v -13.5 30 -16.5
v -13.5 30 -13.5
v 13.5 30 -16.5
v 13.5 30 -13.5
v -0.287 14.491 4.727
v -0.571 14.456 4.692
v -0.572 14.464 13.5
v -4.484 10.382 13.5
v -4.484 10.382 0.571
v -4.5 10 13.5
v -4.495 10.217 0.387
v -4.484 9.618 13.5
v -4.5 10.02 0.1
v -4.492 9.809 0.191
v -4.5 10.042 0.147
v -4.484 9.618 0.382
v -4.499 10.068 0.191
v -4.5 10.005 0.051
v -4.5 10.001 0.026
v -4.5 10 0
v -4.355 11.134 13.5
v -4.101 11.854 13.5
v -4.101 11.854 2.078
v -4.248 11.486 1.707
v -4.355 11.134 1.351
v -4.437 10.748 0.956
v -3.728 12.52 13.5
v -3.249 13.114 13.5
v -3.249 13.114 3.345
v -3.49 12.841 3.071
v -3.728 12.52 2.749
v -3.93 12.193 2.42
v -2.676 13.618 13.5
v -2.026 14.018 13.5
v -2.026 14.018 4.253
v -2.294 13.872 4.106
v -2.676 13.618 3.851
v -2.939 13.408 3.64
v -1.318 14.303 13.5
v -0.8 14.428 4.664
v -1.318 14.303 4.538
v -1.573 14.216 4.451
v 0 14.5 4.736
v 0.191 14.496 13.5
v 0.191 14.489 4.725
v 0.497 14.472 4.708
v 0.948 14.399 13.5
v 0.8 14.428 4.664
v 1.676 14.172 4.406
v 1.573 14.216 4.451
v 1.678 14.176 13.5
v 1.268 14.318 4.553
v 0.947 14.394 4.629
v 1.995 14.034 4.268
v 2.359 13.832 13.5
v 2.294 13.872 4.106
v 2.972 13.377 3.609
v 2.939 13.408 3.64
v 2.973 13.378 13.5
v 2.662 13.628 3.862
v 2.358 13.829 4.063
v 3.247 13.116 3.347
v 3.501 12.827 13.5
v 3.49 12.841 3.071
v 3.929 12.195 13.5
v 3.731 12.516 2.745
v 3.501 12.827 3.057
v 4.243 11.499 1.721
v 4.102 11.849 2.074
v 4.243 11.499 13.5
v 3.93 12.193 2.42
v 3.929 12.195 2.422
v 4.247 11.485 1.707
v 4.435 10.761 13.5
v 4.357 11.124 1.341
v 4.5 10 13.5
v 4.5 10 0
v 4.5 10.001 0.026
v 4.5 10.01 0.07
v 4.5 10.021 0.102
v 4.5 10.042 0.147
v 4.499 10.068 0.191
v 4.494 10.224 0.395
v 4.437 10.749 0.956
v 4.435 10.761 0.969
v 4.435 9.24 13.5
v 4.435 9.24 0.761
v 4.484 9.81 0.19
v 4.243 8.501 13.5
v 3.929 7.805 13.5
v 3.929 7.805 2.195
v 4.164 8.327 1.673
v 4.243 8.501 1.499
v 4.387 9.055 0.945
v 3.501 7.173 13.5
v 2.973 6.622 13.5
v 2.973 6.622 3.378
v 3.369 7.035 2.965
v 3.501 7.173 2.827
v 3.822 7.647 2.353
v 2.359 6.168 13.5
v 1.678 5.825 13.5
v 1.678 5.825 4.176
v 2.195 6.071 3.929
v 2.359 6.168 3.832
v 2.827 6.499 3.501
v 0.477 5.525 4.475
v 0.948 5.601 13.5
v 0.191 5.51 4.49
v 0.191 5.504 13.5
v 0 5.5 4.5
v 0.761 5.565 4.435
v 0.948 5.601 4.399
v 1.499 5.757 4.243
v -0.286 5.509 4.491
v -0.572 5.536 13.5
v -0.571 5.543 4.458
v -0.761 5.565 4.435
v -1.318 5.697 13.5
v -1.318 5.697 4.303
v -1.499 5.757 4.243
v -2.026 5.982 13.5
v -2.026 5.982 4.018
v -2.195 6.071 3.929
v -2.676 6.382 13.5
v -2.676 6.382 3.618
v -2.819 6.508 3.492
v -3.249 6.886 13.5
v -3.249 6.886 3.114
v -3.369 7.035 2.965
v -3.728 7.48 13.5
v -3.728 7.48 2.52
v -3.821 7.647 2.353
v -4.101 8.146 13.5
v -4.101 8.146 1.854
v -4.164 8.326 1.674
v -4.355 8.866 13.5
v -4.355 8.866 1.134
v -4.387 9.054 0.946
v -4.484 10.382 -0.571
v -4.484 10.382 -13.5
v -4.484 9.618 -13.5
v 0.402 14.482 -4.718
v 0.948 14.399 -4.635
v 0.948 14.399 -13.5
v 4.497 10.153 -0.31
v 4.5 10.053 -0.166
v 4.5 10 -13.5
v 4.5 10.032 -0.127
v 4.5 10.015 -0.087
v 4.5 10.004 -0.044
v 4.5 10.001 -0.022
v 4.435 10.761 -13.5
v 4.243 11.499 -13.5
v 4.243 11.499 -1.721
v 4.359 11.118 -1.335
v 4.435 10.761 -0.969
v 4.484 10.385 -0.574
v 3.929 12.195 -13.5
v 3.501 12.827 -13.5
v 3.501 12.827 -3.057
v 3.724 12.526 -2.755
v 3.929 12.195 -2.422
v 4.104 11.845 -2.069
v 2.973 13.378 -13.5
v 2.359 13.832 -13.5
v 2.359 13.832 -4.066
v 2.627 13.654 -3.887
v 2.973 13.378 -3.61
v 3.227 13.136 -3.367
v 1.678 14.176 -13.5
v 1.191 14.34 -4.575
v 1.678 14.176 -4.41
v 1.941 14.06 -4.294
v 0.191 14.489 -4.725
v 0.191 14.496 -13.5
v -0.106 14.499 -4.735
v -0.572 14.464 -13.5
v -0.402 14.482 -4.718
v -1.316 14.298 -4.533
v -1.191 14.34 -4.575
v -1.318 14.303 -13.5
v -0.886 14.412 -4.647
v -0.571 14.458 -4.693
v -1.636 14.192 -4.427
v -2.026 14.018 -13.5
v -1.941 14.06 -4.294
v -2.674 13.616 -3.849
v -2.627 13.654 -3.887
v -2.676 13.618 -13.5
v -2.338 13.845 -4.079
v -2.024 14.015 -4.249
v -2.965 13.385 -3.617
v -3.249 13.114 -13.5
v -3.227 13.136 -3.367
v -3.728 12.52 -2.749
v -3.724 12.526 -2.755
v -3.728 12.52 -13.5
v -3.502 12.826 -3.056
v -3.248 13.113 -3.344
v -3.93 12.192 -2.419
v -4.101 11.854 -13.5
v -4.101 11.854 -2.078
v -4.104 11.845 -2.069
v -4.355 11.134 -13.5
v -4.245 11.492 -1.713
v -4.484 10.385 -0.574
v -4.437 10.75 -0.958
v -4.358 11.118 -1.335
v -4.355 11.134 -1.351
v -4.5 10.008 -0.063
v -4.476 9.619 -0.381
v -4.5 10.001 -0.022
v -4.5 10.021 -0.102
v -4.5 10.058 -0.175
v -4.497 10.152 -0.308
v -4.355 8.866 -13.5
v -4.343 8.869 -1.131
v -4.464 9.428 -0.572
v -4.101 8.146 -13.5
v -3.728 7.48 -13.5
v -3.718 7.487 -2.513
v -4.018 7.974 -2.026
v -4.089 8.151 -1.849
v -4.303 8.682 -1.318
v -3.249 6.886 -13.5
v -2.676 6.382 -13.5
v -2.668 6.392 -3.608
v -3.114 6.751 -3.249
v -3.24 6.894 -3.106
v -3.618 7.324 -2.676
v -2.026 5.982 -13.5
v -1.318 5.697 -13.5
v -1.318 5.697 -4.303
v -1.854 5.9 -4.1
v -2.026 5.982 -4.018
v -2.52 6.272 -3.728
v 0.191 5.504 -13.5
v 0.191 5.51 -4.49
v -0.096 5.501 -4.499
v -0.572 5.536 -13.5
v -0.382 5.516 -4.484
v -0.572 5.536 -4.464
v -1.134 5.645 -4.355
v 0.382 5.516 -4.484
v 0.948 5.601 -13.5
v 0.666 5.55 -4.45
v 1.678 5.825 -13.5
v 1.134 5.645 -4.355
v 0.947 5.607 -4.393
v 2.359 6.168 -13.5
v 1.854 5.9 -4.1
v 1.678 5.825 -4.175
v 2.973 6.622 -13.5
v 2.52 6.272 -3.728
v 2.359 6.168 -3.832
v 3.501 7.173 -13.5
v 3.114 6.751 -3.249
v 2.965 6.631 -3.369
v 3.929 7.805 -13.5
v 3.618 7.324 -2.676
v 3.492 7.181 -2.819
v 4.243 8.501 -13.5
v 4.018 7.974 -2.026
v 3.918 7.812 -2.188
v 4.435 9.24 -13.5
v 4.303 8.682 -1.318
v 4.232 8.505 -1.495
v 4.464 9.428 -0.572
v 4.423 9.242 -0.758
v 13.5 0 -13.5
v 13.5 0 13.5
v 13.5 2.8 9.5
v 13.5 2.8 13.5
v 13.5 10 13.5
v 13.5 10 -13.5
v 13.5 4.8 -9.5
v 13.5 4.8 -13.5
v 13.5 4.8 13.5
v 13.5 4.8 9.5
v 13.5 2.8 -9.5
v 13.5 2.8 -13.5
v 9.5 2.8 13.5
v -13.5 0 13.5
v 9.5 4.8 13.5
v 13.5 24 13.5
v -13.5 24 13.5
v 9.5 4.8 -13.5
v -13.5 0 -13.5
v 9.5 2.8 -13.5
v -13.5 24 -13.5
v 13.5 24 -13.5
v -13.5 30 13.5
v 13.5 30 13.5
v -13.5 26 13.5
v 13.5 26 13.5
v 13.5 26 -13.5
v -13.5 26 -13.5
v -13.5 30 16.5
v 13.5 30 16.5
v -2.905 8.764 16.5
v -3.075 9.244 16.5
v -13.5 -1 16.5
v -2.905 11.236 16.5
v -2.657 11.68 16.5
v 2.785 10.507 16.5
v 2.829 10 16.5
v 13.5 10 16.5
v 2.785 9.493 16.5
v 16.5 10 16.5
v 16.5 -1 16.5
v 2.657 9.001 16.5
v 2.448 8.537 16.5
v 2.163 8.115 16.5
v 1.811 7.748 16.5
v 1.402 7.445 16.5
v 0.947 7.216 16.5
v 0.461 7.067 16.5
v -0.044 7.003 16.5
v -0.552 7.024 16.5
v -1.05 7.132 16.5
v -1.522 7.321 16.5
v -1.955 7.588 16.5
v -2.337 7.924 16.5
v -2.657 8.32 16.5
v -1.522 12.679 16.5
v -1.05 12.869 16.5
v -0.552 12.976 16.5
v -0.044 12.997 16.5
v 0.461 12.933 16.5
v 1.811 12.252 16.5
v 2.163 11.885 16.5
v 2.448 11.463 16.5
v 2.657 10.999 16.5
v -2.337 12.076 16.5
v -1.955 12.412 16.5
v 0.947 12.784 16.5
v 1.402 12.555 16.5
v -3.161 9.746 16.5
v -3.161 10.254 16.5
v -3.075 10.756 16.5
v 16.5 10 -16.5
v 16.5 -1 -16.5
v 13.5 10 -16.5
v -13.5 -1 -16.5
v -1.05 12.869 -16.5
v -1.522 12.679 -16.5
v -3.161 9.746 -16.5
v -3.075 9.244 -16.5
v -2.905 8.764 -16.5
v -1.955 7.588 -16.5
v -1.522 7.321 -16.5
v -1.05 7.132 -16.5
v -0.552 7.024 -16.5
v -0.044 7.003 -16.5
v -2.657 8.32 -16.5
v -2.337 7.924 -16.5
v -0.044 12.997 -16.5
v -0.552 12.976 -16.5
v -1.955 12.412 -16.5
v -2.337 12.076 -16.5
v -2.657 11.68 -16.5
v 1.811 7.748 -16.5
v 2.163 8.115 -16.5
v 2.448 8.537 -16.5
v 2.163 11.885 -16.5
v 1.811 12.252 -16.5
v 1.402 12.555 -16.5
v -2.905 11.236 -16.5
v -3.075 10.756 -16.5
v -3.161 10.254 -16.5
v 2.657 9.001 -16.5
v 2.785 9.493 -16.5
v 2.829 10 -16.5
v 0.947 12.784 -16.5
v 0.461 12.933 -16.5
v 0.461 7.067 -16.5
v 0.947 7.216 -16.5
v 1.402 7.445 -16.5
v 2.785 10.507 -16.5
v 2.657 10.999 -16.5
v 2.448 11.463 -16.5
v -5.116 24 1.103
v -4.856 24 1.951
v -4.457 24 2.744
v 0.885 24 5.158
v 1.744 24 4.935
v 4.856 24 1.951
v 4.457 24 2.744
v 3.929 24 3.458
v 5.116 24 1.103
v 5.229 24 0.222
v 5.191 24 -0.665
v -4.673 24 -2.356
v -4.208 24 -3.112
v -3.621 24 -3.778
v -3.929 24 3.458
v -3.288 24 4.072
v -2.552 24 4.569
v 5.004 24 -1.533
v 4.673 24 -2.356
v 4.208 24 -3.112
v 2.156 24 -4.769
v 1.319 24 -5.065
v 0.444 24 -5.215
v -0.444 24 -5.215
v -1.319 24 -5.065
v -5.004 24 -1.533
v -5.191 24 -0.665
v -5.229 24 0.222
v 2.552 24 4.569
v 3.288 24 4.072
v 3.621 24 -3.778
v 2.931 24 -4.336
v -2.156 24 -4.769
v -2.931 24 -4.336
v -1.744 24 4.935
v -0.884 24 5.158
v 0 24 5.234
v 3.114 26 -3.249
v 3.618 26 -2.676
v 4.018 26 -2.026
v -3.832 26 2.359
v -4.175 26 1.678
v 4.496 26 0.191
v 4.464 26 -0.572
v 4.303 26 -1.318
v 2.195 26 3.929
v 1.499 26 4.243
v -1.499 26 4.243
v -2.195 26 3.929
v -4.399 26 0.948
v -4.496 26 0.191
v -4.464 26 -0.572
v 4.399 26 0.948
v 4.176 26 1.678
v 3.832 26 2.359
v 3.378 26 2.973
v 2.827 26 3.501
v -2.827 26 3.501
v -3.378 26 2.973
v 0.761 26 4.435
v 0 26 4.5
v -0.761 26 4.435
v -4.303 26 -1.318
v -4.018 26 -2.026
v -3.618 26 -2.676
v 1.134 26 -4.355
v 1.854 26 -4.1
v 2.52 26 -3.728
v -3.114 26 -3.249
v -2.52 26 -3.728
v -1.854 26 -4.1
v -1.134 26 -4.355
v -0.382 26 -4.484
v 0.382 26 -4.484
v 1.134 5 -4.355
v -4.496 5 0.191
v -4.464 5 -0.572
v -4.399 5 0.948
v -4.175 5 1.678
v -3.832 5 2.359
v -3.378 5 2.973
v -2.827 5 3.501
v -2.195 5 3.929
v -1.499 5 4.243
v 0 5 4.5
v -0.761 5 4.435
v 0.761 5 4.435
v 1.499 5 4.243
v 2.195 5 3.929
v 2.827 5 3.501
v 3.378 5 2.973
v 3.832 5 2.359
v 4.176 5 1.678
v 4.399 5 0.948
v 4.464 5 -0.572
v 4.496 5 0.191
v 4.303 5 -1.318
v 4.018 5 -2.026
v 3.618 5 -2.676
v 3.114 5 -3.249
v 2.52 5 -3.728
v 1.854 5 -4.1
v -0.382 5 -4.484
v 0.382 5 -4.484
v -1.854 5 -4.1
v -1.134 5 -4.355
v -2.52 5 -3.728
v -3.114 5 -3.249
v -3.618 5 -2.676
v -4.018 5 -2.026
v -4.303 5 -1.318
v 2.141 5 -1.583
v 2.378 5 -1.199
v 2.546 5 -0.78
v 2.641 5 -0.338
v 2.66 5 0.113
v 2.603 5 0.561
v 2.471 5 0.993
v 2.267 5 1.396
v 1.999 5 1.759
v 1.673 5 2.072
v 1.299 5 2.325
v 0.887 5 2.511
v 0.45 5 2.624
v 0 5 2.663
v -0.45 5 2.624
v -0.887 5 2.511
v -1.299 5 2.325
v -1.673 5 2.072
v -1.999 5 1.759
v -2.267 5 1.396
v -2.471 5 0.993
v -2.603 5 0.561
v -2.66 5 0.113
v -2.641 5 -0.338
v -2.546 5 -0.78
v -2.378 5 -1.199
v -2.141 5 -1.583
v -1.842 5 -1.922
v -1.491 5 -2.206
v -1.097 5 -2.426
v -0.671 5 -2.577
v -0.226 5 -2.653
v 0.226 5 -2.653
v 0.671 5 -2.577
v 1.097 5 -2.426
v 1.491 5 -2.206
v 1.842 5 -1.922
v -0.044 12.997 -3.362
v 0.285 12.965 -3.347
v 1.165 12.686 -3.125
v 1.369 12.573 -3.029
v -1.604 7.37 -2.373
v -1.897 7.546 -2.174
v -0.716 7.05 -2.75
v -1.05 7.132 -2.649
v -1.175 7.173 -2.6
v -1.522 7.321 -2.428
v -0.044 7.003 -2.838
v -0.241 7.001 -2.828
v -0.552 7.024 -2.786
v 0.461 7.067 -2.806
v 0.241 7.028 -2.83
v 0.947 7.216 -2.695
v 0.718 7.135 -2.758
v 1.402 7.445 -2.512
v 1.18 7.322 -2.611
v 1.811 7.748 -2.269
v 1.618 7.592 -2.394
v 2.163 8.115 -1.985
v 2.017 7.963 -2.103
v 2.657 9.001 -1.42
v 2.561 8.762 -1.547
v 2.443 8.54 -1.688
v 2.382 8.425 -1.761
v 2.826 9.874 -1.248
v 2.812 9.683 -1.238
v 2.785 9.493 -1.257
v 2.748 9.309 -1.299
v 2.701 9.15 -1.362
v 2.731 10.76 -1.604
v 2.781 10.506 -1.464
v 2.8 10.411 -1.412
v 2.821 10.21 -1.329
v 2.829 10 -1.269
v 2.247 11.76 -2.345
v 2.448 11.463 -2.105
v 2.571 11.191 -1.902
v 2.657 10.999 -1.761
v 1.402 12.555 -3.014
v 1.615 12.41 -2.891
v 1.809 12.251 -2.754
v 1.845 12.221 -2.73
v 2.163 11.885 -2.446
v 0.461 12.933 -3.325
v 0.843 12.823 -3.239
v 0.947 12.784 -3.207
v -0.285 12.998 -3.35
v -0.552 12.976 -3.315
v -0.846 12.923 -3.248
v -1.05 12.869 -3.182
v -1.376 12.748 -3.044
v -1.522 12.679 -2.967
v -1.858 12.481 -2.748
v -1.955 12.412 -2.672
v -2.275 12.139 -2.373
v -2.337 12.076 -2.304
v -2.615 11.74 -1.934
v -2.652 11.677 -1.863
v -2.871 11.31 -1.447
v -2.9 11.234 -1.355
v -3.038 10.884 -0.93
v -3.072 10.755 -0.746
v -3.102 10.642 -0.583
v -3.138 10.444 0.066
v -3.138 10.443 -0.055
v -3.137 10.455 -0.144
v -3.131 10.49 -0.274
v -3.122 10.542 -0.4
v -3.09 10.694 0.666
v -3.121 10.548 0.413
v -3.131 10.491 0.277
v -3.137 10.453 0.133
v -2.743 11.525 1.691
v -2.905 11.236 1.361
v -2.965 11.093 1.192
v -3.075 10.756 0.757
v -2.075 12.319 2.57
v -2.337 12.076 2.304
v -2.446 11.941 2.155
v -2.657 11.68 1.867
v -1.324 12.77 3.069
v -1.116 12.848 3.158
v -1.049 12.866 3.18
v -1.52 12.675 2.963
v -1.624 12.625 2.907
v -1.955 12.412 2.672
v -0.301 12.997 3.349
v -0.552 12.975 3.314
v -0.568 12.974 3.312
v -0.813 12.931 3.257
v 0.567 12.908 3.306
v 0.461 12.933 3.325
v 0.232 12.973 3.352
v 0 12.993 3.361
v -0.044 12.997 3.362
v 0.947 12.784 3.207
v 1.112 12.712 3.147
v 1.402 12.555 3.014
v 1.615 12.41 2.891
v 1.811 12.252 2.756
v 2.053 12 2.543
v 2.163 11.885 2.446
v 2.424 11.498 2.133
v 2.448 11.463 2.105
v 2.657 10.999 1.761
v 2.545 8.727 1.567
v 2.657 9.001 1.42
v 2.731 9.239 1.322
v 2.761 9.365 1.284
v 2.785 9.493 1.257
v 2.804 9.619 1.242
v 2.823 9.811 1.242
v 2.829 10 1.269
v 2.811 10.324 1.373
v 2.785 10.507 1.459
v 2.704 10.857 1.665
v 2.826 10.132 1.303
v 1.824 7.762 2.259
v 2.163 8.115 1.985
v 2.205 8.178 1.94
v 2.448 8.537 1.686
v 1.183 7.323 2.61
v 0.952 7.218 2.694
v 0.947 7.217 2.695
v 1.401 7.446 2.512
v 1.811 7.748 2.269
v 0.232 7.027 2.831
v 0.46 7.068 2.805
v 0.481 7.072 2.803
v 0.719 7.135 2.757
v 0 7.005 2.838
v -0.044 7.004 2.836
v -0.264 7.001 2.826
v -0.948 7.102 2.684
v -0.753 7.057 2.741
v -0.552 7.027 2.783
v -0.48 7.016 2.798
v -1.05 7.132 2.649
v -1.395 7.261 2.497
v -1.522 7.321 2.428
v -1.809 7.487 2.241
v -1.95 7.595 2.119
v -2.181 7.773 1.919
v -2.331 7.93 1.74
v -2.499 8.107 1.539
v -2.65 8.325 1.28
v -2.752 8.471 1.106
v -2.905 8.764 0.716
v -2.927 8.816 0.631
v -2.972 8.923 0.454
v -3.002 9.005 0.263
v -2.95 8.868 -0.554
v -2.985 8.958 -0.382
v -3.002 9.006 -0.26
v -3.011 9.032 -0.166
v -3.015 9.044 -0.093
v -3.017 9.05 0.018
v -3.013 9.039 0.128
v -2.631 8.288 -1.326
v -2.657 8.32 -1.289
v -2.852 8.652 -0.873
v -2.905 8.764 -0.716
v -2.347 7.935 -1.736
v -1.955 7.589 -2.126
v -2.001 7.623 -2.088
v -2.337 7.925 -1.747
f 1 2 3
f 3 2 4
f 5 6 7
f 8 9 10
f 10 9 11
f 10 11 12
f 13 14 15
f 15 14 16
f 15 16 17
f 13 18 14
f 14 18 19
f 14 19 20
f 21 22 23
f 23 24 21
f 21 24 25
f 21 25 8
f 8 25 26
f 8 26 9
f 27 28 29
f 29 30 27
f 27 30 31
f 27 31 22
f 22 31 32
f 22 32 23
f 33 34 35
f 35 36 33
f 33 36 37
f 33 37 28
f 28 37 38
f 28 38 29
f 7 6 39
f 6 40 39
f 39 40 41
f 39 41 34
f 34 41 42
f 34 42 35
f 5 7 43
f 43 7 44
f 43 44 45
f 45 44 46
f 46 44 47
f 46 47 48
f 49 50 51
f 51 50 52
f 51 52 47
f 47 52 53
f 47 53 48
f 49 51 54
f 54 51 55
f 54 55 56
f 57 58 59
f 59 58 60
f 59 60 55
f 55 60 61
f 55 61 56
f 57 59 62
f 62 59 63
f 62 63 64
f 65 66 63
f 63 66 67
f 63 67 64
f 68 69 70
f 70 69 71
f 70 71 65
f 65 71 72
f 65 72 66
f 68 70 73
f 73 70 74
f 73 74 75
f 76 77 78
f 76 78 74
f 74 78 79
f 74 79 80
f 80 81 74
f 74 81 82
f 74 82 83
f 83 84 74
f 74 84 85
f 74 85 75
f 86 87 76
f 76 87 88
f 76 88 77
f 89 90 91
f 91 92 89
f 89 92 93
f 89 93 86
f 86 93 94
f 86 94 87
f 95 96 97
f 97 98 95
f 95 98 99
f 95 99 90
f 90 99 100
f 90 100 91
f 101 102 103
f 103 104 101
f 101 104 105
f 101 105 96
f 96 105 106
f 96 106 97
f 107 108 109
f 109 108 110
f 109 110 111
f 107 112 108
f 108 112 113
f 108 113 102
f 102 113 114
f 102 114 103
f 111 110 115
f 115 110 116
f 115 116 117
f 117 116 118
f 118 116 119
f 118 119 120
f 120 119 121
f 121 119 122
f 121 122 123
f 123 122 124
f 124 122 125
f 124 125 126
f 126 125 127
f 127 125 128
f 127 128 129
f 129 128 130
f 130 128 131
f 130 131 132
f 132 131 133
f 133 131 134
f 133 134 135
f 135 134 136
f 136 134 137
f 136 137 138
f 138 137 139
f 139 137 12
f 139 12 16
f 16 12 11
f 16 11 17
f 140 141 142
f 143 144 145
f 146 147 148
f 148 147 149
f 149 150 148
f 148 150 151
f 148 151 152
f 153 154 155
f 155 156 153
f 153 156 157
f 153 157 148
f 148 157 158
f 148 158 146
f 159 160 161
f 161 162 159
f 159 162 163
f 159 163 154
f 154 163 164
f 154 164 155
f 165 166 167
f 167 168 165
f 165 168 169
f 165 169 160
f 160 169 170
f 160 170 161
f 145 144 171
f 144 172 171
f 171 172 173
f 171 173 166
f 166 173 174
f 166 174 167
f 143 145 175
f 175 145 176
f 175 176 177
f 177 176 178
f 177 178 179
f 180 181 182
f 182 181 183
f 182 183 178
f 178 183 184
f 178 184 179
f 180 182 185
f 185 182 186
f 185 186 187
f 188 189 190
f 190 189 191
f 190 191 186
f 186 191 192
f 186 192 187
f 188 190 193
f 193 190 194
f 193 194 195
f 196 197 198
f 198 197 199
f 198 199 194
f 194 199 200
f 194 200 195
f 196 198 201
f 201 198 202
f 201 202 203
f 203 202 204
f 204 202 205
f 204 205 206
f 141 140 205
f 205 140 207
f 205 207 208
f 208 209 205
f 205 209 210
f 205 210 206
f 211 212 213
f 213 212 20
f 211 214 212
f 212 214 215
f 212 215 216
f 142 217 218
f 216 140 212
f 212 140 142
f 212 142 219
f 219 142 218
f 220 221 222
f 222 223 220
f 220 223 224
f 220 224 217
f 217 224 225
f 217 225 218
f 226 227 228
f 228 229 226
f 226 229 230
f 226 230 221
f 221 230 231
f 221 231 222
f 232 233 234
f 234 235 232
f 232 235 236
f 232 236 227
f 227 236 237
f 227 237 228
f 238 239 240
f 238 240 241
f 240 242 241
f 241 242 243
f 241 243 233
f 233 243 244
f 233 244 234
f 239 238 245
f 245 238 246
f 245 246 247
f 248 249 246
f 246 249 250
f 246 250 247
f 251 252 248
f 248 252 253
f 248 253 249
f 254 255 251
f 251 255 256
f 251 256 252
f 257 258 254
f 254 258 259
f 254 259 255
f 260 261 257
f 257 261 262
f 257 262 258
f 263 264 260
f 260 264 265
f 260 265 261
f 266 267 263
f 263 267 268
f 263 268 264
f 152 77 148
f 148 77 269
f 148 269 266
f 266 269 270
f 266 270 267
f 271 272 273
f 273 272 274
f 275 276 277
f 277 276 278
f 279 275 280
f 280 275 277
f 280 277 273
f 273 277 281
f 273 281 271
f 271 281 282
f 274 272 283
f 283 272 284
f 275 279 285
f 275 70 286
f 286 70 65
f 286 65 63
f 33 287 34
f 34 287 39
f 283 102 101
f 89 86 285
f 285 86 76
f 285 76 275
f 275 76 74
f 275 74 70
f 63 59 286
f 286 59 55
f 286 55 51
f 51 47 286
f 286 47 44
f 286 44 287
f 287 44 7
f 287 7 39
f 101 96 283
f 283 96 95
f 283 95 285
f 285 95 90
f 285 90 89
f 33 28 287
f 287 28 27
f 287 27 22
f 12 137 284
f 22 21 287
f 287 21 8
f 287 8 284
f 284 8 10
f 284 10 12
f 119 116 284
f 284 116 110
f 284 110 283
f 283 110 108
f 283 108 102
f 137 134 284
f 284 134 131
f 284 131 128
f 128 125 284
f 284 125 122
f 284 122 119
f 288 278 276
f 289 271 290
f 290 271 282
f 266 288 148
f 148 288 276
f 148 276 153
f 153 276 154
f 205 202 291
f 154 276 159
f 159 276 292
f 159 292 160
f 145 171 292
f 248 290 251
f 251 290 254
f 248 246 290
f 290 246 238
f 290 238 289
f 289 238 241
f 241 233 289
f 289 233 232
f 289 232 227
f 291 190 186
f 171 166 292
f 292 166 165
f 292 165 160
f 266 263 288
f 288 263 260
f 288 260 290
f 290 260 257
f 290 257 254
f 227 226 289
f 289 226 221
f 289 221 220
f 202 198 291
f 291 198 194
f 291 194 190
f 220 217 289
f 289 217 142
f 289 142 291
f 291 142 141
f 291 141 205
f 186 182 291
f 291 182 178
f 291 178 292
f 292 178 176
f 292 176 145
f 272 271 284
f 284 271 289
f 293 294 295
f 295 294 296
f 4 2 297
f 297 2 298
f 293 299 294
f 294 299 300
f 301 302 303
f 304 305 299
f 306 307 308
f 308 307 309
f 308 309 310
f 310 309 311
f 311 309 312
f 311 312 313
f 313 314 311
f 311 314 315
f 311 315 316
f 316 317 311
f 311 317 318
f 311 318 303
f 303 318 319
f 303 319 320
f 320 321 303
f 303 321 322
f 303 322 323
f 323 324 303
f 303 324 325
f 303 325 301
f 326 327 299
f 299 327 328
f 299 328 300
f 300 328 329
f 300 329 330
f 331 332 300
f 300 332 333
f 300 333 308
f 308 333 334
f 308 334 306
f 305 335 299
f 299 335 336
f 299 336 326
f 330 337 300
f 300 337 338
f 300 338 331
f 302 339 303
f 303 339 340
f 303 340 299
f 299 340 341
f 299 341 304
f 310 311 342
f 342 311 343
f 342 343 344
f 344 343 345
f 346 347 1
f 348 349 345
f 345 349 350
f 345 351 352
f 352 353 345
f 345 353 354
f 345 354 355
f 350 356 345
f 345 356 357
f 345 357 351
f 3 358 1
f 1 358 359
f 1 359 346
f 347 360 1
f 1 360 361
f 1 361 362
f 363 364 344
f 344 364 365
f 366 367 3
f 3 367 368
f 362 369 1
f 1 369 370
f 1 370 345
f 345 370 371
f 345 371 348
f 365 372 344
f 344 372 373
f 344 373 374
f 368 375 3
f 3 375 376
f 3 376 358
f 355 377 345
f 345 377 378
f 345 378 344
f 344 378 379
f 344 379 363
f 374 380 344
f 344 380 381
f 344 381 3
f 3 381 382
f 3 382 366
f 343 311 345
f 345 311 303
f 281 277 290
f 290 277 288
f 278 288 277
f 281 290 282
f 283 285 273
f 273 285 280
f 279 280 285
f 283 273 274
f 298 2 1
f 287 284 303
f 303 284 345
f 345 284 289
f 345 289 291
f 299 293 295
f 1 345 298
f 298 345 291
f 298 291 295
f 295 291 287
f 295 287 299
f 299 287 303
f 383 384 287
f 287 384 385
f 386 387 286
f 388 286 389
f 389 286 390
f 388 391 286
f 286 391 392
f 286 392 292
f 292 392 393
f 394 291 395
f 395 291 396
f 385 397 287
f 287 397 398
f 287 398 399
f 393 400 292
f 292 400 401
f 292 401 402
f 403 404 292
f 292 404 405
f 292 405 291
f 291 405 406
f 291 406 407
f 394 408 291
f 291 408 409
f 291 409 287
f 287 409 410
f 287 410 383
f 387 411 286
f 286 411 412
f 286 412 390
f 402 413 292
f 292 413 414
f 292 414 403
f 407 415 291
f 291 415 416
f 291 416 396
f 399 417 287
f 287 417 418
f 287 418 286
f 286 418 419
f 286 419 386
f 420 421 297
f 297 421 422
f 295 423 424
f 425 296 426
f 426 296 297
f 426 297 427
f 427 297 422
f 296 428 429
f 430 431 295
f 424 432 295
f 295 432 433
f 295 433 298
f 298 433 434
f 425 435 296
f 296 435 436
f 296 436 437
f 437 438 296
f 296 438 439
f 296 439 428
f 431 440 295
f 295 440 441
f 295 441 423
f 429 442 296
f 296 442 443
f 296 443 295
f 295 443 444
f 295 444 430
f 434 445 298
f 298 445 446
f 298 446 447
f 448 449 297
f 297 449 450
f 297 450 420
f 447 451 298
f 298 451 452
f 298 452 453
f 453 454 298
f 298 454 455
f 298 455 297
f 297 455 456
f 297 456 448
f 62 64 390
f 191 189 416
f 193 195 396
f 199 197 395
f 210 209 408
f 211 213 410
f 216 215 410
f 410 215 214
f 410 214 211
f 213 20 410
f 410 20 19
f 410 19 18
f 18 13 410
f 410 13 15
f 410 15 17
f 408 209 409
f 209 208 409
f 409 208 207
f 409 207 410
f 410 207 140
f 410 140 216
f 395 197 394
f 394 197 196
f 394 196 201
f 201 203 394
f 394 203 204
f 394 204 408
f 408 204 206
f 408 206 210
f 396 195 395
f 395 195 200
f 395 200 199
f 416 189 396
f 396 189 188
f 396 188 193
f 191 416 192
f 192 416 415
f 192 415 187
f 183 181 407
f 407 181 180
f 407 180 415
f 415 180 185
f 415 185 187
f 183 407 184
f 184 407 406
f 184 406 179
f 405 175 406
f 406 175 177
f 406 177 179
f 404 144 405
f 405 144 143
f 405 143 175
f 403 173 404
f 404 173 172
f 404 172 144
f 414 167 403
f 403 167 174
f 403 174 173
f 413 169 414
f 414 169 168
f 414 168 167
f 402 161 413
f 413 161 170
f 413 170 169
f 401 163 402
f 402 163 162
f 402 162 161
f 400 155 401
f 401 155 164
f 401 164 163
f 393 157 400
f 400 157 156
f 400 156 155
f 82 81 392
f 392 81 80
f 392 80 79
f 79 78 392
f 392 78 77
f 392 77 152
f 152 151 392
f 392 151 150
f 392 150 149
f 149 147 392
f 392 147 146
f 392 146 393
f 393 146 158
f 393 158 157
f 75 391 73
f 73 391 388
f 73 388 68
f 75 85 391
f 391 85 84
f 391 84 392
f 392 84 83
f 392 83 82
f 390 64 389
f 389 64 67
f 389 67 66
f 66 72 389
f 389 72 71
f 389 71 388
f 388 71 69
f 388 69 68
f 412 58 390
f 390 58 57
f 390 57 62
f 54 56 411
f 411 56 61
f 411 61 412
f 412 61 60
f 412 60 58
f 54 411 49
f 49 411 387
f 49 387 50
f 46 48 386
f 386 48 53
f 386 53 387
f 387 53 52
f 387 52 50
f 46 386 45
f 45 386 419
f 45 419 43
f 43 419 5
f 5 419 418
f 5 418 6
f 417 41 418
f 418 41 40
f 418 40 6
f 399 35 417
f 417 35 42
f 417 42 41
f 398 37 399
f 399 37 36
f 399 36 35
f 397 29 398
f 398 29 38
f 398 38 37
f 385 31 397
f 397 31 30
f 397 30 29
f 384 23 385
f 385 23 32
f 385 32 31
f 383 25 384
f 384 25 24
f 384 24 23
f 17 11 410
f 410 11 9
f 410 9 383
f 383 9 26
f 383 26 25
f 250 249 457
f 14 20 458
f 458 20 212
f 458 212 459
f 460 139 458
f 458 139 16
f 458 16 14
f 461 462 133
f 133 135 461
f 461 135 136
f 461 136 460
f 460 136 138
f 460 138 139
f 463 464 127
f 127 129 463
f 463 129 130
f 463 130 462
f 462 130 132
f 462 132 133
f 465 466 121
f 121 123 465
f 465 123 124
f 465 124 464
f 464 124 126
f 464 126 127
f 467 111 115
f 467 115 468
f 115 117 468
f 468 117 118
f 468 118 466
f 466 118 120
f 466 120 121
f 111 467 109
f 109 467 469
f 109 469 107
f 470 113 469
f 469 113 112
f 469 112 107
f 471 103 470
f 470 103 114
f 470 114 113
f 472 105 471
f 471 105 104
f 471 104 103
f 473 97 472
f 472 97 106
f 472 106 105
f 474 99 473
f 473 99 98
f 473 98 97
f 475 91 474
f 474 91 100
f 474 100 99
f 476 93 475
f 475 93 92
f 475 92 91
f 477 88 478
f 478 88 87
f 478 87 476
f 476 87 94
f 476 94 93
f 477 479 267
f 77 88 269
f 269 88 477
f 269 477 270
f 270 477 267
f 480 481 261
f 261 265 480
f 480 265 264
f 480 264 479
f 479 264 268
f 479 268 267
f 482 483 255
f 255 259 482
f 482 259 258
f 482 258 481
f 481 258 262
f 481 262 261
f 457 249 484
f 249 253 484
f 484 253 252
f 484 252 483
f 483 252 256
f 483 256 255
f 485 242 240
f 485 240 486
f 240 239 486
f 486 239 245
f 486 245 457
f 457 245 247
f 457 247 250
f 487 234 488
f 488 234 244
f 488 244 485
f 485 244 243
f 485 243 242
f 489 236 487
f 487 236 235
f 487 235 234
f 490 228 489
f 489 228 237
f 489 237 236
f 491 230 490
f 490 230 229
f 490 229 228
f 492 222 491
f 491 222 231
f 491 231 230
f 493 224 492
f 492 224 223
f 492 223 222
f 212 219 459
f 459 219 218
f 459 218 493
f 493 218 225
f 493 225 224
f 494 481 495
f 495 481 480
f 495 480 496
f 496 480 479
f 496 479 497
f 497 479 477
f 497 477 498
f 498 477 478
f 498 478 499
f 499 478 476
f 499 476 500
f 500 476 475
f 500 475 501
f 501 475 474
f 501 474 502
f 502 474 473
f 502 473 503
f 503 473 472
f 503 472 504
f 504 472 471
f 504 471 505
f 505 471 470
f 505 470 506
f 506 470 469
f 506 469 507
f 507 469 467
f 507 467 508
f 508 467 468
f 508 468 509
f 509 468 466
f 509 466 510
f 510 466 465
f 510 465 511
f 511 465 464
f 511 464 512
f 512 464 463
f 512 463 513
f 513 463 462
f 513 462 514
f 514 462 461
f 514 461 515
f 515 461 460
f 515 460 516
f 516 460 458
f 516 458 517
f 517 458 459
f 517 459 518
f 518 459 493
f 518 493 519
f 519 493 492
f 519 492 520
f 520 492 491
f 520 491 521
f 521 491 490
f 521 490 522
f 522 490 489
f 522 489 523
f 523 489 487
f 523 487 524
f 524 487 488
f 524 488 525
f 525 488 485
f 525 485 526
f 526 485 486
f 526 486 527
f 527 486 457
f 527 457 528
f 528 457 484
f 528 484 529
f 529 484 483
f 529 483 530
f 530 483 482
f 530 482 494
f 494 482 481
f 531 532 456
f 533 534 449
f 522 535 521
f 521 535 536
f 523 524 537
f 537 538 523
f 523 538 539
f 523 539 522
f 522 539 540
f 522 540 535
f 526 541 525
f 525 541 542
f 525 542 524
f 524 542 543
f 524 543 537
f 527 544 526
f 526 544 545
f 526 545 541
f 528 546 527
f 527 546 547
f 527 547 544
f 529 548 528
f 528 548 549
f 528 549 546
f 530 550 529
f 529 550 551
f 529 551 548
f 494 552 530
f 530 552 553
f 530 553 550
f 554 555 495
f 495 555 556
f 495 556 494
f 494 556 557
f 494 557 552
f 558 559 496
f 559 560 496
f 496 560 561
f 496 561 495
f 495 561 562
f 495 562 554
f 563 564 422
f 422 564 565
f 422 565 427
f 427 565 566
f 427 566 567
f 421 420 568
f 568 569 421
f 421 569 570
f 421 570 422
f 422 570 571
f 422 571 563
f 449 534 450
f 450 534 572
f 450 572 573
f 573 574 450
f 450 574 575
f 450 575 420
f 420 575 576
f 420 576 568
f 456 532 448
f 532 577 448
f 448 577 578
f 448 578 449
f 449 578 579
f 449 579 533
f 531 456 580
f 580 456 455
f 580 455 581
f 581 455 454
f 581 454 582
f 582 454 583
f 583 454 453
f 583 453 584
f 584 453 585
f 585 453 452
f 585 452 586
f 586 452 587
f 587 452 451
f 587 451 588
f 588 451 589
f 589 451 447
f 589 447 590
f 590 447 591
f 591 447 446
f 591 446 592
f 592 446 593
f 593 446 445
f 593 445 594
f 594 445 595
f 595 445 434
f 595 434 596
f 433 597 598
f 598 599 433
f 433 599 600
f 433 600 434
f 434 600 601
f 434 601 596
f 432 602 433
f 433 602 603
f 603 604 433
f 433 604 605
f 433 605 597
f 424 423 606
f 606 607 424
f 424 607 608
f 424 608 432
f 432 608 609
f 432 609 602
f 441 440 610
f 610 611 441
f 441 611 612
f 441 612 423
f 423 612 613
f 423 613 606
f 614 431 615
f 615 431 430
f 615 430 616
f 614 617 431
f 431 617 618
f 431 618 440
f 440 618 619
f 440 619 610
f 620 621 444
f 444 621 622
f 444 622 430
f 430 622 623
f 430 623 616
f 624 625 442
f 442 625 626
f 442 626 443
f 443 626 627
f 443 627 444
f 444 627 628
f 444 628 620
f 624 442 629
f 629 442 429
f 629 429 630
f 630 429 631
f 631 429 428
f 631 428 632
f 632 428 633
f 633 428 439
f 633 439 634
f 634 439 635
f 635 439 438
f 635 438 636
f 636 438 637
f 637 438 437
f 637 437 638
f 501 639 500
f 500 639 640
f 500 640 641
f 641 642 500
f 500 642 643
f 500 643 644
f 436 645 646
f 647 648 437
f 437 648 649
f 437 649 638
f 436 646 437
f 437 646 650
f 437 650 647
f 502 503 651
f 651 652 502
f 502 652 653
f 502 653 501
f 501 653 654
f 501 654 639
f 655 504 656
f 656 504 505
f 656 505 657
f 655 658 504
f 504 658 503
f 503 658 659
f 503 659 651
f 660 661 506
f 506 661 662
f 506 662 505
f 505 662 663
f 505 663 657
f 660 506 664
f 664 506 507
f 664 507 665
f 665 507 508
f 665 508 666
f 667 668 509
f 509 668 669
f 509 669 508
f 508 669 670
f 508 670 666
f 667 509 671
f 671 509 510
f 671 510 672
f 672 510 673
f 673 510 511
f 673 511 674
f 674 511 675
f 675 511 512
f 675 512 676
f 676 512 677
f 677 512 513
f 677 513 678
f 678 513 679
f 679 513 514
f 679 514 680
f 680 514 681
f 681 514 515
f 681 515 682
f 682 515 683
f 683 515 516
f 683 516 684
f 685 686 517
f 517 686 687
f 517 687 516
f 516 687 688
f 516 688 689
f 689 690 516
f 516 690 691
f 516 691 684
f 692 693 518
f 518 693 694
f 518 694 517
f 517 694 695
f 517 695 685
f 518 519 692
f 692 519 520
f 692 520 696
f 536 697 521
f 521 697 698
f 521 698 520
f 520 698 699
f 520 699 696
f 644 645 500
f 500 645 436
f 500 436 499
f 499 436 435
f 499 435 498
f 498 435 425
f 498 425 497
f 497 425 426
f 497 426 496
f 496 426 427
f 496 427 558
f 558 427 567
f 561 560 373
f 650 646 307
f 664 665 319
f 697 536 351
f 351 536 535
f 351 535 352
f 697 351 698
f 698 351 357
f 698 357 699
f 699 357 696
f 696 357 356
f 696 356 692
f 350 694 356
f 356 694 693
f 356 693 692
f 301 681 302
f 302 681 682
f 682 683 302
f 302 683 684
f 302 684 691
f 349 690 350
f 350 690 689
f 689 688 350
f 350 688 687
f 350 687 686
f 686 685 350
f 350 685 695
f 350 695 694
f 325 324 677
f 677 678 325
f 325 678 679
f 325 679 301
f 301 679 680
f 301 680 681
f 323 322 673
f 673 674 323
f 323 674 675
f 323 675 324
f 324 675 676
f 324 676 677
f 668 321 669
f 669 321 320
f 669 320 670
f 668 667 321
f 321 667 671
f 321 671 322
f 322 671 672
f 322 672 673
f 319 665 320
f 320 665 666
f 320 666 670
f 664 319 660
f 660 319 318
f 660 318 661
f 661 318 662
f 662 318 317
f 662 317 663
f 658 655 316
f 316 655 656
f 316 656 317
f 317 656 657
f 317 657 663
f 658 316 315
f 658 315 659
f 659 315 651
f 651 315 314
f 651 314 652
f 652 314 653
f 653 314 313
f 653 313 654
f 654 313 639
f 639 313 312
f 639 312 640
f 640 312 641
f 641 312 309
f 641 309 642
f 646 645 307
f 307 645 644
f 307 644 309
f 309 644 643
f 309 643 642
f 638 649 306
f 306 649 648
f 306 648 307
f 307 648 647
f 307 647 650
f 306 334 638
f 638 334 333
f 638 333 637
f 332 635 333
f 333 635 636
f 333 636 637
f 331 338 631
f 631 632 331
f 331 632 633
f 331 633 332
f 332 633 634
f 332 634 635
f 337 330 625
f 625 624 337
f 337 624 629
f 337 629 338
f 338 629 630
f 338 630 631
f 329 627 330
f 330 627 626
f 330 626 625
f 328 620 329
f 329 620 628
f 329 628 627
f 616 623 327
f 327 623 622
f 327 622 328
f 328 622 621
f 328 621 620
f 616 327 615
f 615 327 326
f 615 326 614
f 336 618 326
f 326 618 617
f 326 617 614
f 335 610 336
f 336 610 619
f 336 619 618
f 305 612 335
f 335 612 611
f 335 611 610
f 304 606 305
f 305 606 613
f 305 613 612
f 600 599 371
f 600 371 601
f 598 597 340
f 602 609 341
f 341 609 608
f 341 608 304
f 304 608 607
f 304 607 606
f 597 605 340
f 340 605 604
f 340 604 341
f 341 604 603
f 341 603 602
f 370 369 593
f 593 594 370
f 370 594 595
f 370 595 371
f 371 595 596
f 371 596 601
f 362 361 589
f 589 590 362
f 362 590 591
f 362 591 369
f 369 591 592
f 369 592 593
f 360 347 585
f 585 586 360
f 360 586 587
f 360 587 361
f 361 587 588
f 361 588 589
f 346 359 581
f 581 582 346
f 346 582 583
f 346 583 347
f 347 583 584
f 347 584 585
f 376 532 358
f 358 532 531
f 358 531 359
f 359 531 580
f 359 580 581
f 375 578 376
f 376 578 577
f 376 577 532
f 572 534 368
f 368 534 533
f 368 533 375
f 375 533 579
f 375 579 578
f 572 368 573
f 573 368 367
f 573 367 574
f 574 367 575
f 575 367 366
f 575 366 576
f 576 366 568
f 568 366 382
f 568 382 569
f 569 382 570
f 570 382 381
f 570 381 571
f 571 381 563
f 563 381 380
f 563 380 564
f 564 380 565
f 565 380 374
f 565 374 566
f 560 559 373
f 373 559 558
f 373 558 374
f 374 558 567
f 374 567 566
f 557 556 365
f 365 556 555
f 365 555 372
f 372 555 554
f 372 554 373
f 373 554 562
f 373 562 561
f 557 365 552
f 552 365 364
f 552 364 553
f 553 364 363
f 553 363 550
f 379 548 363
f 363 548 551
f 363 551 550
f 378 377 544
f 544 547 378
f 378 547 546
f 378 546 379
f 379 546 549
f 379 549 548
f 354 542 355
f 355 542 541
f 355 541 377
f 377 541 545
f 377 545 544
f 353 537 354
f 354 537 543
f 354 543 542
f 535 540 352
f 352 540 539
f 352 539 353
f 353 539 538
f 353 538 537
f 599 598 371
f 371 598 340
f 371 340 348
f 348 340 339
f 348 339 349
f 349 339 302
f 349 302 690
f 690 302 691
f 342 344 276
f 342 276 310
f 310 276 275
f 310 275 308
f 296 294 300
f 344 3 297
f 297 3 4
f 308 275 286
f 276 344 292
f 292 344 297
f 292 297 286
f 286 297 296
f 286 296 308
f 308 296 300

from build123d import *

# Parameters (mm, degrees)
SKETCH1_W                     = 33
SKETCH1_H                     = 33
SKETCH1_W_2                   = 27
SKETCH1_H_2                   = 27
BOSS_EXTRUDE1_DEPTH           = 30
SKETCH3_W                     = 27
SKETCH3_H                     = 30
CUT_EXTRUDE1_DEPTH            = 30
SKETCH4_W                     = 33
SKETCH4_H                     = 1
BOSS_EXTRUDE2_DEPTH           = 33
BOSS_EXTRUDE4_DEPTH           = 4.8
CUT_EXTRUDE3_DEPTH            = 2.8
BOSS_EXTRUDE5_DEPTH           = 4.8
CUT_EXTRUDE5_DEPTH            = 2.8
SKETCH12_W                    = 3
SKETCH12_H                    = 27
CUT_EXTRUDE6_DEPTH            = 10
SKETCH13_W                    = 3
SKETCH13_H                    = 37.394696754
CUT_EXTRUDE7_DEPTH            = 39.800773188
SKETCH15_R                    = 4.5
BOSS_EXTRUDE6_DEPTH           = 33
BOSS_EXTRUDE8_DEPTH           = 27
SKETCH24_R                    = 4.5
BOSS_EXTRUDE7_DEPTH           = 5
BOSS_EXTRUDE7_OTHER_WAY_DEPTH = 16
BOSS_EXTRUDE7_OTHER_WAY_TAPER = -3
SKETCH27_R                    = 4.5
CUT_EXTRUDE12_DEPTH           = 21
CUT_EXTRUDE12_DRAFT           = -5
SKETCH31_R                    = 3
CUT_EXTRUDE14_DEPTH           = 33
CUT_EXTRUDE15_DEPTH           = 20


with BuildPart() as part:
    # Sketch1 → Boss-Extrude1 (new body)
    with BuildSketch(Plane(origin=(0, 0, 0), x_dir=(1, 0, 0), z_dir=(0, 1, 0))):
        Rectangle(SKETCH1_W, SKETCH1_H)
        Rectangle(SKETCH1_W_2, SKETCH1_H_2, mode=Mode.SUBTRACT)
    extrude(amount=BOSS_EXTRUDE1_DEPTH)

    # Sketch3 → Cut-Extrude1 (cut)
    with BuildSketch(Plane(origin=(-13.5, 0, 0), x_dir=(0, 0, -1), z_dir=(1, 0, 0))):
        with Locations((0, 15)):
            Rectangle(SKETCH3_W, SKETCH3_H)
    extrude(amount=-CUT_EXTRUDE1_DEPTH, mode=Mode.SUBTRACT)

    # Sketch4 → Boss-Extrude2 (add)
    with BuildSketch(Plane(origin=(16.5, 0, 0), x_dir=(0, 0, -1), z_dir=(1, 0, 0))):
        with Locations((0, -0.5)):
            Rectangle(SKETCH4_W, SKETCH4_H)
    extrude(amount=-BOSS_EXTRUDE2_DEPTH)

    # Sketch7 → Boss-Extrude4 (add)
    with BuildSketch(Plane(origin=(0, 0, 0), x_dir=(1, 0, 0), z_dir=(0, 1, 0))):
        Polygon((13.5, 13.5), (9.5, 13.5), (13.5, 9.5), align=None)
    extrude(amount=BOSS_EXTRUDE4_DEPTH)

    # Sketch8 → Cut-Extrude3 (cut)
    with BuildSketch(Plane(origin=(0, 0, 0), x_dir=(1, 0, 0), z_dir=(0, 1, 0))):
        Polygon((13.5, 9.5), (9.5, 13.5), (13.5, 13.5), align=None)
    extrude(amount=CUT_EXTRUDE3_DEPTH, mode=Mode.SUBTRACT)

    # Sketch9 → Boss-Extrude5 (add)
    with BuildSketch(Plane(origin=(0, 0, 0), x_dir=(1, 0, 0), z_dir=(0, 1, 0))):
        Polygon((13.5, -13.5), (13.5, -9.5), (9.5, -13.5), align=None)
    extrude(amount=BOSS_EXTRUDE5_DEPTH)

    # Sketch10 → Cut-Extrude5 (cut)
    with BuildSketch(Plane(origin=(0, 0, 0), x_dir=(1, 0, 0), z_dir=(0, 1, 0))):
        Polygon((9.5, -13.5), (13.5, -9.5), (13.5, -13.5), align=None)
    extrude(amount=CUT_EXTRUDE5_DEPTH, mode=Mode.SUBTRACT)

    # Sketch12 → Cut-Extrude6 (cut)
    with BuildSketch(Plane(origin=(0, 0, 0), x_dir=(1, 0, 0), z_dir=(0, 1, 0))):
        with Locations((-15, 0)):
            Rectangle(SKETCH12_W, SKETCH12_H)
    extrude(amount=-CUT_EXTRUDE6_DEPTH, mode=Mode.SUBTRACT)

    # Sketch13 → Cut-Extrude7 (cut, through all)
    with BuildSketch(Plane.XZ.offset(1)):
        with Locations((-15, -2.197348377)):
            Rectangle(SKETCH13_W, SKETCH13_H)
    extrude(amount=-CUT_EXTRUDE7_DEPTH, mode=Mode.SUBTRACT)

    # Sketch15 → Boss-Extrude6 (add, through all)
    with BuildSketch(Plane.XY.offset(16.5)):
        with Locations((0, 10)):
            Circle(SKETCH15_R)
    extrude(amount=-BOSS_EXTRUDE6_DEPTH)

    # Sketch26 → Boss-Extrude8 (add, through all)
    with BuildSketch(Plane.ZY.offset(-13.5)):
        Polygon((13.5, 26), (-13.5, 26), (-13.5, 24), (0, 24), (13.5, 24), align=None)
    extrude(amount=BOSS_EXTRUDE8_DEPTH)

    # Sketch24 → Boss-Extrude7 (add)
    with BuildSketch(Plane(origin=(0, 10, 0), x_dir=(1, 0, 0), z_dir=(0, 1, 0))):
        with Locations(Location((0, 0, 0), (0, 0, 270))):
            Circle(SKETCH24_R)
    extrude(amount=-BOSS_EXTRUDE7_DEPTH)

    # Sketch24 → Boss-Extrude7 other way (add)
    with BuildSketch(Plane(origin=(0, 10, 0), x_dir=(1, 0, 0), z_dir=(0, 1, 0))):
        with Locations(Location((0, 0, 0), (0, 0, 270))):
            Circle(SKETCH24_R)
    extrude(amount=BOSS_EXTRUDE7_OTHER_WAY_DEPTH, taper=BOSS_EXTRUDE7_OTHER_WAY_TAPER)


with BuildPart() as cut_extrude12_tool:
    # Sketch27 → Cut-Extrude12 (with draft: the straight prism first)
    with BuildSketch(Plane(origin=(0, 26, 0), x_dir=(1, 0, 0), z_dir=(0, 1, 0))):
        with Locations(Location((0, 0, 0), (0, 0, 270))):
            Circle(SKETCH27_R)
    extrude(amount=-CUT_EXTRUDE12_DEPTH)
    # Cut-Extrude12: the draft: its side faces are tilted about the plane it starts from
    cut_extrude12_sides = [cut_extrude12_tool.faces().sort_by_distance(p)[0] for p in [
        (0, 15.5, -4.5),
    ]]
    draft(cut_extrude12_sides, Plane(origin=(0, 26, 0), x_dir=(1, 0, 0), z_dir=(0, 1, 0)), CUT_EXTRUDE12_DRAFT)


with BuildPart() as part_1:
    add(part.part)

    # Cut-Extrude12: cut by cut_extrude12_tool
    add(cut_extrude12_tool.part, mode=Mode.SUBTRACT)

    # Sketch31 → Cut-Extrude14 (cut)
    with BuildSketch(Plane.XY.offset(16.5)):
        with Locations((-0.171414506, 10)):
            Circle(SKETCH31_R)
    extrude(amount=-CUT_EXTRUDE14_DEPTH, mode=Mode.SUBTRACT)

    # Sketch32 → Cut-Extrude15 (cut)
    with BuildSketch(Plane(origin=(0, 30, 0), x_dir=(1, 0, 0), z_dir=(0, 1, 0))):
        Polygon((13.5, 13.5), (13.5, 17.645785923), (20.004532671, 17.645785923), (20.004532671, -18.642828809), (13.5, -18.642828809), (13.5, -13.5), align=None)
    extrude(amount=-CUT_EXTRUDE15_DEPTH, mode=Mode.SUBTRACT)


solid = part_1.part
